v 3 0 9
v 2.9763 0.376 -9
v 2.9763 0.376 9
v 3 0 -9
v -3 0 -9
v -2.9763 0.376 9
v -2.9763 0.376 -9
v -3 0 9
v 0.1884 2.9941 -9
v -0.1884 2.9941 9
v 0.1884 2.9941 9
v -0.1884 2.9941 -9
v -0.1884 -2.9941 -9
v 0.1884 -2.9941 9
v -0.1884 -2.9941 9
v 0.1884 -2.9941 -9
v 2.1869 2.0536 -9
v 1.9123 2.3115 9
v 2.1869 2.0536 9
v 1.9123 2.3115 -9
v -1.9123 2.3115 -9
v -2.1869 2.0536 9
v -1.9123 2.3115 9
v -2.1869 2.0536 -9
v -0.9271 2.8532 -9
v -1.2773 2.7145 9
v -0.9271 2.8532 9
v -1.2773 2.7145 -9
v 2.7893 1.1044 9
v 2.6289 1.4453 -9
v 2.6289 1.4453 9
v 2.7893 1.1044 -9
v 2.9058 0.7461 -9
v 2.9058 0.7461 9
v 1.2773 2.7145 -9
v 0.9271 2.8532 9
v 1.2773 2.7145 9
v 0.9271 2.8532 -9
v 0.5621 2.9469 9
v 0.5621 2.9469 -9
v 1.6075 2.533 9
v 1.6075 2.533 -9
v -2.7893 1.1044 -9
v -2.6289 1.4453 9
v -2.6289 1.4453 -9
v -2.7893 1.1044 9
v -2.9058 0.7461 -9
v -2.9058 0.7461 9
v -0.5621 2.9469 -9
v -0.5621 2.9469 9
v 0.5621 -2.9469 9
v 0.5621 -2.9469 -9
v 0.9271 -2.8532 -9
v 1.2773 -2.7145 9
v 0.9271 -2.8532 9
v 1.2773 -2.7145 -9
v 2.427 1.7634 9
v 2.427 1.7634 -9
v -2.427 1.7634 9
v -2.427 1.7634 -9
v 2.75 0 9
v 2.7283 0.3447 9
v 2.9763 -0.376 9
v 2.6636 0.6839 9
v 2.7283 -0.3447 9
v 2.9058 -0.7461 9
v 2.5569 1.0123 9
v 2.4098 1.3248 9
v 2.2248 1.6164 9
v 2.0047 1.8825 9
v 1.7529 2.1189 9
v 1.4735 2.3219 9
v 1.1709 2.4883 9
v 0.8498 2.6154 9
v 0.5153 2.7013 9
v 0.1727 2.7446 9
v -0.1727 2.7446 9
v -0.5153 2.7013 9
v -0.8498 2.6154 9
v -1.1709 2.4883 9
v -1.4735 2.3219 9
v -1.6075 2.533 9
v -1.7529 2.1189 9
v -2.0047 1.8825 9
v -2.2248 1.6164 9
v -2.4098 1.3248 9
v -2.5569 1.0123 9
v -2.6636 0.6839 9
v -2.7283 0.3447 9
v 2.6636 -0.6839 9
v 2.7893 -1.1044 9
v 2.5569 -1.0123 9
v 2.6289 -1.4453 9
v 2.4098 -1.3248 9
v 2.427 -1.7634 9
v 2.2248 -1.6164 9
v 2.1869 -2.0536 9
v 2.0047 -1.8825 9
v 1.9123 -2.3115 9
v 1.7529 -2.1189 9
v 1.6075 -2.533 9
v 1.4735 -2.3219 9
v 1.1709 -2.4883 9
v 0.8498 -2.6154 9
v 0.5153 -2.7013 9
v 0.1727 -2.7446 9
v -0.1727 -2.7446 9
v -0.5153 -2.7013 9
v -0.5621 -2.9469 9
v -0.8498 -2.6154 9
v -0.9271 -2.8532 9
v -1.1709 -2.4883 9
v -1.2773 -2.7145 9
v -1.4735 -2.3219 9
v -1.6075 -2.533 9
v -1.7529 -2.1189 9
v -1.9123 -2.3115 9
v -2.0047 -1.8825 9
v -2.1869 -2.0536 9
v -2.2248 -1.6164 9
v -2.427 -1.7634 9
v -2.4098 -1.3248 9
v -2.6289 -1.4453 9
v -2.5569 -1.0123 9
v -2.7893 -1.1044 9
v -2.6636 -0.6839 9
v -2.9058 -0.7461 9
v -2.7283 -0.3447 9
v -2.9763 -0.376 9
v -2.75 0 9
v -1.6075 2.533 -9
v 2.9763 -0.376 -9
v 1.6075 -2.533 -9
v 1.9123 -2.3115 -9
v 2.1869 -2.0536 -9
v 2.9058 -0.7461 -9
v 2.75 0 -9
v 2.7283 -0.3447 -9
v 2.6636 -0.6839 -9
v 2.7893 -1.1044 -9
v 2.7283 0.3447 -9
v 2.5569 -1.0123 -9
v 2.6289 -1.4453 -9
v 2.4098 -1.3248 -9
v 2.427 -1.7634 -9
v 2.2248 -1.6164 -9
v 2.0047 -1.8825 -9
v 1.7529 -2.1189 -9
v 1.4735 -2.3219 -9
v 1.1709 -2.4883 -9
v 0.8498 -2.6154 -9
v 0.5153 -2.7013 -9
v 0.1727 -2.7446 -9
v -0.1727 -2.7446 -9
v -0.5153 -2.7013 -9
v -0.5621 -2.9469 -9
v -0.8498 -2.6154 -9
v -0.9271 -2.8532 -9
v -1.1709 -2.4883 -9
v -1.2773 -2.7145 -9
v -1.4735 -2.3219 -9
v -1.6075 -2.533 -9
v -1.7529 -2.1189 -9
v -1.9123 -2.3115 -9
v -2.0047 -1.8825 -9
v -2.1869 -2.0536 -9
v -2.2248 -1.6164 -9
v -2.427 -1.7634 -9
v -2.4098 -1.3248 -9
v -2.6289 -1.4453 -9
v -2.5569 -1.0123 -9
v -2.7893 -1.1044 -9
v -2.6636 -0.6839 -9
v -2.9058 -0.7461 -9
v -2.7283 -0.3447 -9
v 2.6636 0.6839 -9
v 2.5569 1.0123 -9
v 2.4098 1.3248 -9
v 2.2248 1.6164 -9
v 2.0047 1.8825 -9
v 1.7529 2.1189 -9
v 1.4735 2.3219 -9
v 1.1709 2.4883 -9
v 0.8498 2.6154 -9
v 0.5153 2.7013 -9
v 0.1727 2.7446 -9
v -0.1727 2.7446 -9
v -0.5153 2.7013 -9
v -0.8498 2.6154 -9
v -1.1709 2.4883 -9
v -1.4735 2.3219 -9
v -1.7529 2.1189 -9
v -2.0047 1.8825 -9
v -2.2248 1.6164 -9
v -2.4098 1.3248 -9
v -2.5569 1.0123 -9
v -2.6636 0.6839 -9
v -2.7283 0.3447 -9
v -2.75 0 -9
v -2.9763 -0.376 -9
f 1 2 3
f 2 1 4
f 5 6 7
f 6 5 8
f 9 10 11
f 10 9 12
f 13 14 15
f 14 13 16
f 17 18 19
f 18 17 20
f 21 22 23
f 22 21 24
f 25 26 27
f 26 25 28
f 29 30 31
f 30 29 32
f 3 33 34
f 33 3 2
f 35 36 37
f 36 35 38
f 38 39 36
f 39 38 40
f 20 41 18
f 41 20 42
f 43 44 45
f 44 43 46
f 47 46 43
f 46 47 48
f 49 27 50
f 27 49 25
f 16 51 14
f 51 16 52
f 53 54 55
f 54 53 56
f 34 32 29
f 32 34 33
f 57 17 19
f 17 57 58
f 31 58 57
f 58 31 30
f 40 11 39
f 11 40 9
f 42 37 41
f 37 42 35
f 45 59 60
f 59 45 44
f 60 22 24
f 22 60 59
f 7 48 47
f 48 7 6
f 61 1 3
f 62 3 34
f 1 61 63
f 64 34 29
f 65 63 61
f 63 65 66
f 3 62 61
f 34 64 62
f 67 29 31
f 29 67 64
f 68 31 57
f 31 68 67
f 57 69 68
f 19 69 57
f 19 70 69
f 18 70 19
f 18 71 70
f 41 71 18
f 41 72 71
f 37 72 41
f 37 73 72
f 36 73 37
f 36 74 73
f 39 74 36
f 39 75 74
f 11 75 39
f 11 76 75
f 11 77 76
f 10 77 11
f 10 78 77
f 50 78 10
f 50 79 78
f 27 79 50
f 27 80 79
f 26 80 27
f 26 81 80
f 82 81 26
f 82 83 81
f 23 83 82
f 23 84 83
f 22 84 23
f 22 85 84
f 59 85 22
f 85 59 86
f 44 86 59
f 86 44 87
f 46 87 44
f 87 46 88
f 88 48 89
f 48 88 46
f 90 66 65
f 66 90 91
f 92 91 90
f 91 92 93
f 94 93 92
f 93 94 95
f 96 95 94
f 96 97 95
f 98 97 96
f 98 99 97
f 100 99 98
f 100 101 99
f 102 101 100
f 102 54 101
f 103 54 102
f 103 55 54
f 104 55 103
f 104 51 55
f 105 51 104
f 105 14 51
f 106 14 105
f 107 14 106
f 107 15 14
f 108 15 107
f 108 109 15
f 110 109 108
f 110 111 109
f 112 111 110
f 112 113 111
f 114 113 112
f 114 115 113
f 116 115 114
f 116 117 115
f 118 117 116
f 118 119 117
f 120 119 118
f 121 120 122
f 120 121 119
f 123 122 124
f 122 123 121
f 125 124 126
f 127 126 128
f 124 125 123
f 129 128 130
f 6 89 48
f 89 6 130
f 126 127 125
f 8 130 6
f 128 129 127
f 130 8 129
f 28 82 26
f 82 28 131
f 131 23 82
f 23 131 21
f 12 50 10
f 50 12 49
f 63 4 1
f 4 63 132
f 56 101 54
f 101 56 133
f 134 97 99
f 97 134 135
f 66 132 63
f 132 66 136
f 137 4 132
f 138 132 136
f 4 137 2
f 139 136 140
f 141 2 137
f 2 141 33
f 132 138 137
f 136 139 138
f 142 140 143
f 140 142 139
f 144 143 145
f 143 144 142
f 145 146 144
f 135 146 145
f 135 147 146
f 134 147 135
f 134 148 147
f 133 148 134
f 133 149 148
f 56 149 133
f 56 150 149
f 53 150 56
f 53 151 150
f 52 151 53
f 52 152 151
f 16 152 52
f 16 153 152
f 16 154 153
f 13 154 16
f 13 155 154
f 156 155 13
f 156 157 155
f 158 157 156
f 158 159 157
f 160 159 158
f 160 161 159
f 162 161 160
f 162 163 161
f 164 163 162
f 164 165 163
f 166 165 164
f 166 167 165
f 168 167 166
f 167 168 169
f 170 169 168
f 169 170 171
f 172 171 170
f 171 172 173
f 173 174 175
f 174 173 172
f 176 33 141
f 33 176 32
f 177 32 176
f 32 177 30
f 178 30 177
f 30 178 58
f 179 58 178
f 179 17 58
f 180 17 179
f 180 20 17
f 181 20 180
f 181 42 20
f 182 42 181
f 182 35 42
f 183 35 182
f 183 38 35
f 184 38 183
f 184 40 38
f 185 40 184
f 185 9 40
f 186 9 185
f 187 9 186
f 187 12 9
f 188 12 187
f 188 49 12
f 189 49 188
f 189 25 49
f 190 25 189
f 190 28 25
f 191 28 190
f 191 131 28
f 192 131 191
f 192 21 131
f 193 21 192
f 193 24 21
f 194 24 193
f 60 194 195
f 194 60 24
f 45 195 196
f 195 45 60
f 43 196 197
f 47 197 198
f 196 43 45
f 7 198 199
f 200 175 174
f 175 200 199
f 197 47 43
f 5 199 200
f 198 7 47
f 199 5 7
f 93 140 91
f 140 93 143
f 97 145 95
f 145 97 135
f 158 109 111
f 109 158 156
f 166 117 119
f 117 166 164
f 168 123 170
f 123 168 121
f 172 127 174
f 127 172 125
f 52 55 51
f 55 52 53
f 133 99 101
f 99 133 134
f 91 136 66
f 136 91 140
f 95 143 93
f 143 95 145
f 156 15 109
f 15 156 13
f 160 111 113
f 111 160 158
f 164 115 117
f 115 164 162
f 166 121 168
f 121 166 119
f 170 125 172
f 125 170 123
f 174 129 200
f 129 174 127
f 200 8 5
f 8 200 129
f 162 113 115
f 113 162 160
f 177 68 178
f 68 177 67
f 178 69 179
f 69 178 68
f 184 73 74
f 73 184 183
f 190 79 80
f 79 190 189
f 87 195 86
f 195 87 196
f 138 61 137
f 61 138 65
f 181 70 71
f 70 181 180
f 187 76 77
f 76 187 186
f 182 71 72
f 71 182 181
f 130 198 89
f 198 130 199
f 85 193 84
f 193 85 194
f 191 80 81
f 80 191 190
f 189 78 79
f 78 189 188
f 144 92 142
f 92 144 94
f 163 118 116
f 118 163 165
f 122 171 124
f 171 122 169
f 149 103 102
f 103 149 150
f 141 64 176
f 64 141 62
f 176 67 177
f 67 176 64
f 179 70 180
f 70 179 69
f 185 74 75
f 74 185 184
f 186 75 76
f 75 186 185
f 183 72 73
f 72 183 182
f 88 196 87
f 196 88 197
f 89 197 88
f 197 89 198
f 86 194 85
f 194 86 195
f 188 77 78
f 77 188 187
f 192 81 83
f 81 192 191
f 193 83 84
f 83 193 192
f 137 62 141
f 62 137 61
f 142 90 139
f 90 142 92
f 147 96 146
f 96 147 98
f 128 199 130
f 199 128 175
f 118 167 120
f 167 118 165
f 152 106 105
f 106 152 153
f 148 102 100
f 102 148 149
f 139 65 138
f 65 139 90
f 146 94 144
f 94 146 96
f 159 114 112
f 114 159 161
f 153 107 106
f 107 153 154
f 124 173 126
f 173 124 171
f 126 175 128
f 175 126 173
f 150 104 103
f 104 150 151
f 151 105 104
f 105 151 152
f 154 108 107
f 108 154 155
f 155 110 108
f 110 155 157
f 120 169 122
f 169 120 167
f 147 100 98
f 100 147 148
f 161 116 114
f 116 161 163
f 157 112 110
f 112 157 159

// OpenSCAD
$fn = 50;


difference() {
	union() {
		translate(v = [0, 0, -9.0000000000]) {
			cylinder(h = 18, r = 3.0000000000);
		}
	}
	union() {
		translate(v = [0, 0, -100.0000000000]) {
			cylinder(h = 200, r = 2.7500000000);
		}
	}
}
